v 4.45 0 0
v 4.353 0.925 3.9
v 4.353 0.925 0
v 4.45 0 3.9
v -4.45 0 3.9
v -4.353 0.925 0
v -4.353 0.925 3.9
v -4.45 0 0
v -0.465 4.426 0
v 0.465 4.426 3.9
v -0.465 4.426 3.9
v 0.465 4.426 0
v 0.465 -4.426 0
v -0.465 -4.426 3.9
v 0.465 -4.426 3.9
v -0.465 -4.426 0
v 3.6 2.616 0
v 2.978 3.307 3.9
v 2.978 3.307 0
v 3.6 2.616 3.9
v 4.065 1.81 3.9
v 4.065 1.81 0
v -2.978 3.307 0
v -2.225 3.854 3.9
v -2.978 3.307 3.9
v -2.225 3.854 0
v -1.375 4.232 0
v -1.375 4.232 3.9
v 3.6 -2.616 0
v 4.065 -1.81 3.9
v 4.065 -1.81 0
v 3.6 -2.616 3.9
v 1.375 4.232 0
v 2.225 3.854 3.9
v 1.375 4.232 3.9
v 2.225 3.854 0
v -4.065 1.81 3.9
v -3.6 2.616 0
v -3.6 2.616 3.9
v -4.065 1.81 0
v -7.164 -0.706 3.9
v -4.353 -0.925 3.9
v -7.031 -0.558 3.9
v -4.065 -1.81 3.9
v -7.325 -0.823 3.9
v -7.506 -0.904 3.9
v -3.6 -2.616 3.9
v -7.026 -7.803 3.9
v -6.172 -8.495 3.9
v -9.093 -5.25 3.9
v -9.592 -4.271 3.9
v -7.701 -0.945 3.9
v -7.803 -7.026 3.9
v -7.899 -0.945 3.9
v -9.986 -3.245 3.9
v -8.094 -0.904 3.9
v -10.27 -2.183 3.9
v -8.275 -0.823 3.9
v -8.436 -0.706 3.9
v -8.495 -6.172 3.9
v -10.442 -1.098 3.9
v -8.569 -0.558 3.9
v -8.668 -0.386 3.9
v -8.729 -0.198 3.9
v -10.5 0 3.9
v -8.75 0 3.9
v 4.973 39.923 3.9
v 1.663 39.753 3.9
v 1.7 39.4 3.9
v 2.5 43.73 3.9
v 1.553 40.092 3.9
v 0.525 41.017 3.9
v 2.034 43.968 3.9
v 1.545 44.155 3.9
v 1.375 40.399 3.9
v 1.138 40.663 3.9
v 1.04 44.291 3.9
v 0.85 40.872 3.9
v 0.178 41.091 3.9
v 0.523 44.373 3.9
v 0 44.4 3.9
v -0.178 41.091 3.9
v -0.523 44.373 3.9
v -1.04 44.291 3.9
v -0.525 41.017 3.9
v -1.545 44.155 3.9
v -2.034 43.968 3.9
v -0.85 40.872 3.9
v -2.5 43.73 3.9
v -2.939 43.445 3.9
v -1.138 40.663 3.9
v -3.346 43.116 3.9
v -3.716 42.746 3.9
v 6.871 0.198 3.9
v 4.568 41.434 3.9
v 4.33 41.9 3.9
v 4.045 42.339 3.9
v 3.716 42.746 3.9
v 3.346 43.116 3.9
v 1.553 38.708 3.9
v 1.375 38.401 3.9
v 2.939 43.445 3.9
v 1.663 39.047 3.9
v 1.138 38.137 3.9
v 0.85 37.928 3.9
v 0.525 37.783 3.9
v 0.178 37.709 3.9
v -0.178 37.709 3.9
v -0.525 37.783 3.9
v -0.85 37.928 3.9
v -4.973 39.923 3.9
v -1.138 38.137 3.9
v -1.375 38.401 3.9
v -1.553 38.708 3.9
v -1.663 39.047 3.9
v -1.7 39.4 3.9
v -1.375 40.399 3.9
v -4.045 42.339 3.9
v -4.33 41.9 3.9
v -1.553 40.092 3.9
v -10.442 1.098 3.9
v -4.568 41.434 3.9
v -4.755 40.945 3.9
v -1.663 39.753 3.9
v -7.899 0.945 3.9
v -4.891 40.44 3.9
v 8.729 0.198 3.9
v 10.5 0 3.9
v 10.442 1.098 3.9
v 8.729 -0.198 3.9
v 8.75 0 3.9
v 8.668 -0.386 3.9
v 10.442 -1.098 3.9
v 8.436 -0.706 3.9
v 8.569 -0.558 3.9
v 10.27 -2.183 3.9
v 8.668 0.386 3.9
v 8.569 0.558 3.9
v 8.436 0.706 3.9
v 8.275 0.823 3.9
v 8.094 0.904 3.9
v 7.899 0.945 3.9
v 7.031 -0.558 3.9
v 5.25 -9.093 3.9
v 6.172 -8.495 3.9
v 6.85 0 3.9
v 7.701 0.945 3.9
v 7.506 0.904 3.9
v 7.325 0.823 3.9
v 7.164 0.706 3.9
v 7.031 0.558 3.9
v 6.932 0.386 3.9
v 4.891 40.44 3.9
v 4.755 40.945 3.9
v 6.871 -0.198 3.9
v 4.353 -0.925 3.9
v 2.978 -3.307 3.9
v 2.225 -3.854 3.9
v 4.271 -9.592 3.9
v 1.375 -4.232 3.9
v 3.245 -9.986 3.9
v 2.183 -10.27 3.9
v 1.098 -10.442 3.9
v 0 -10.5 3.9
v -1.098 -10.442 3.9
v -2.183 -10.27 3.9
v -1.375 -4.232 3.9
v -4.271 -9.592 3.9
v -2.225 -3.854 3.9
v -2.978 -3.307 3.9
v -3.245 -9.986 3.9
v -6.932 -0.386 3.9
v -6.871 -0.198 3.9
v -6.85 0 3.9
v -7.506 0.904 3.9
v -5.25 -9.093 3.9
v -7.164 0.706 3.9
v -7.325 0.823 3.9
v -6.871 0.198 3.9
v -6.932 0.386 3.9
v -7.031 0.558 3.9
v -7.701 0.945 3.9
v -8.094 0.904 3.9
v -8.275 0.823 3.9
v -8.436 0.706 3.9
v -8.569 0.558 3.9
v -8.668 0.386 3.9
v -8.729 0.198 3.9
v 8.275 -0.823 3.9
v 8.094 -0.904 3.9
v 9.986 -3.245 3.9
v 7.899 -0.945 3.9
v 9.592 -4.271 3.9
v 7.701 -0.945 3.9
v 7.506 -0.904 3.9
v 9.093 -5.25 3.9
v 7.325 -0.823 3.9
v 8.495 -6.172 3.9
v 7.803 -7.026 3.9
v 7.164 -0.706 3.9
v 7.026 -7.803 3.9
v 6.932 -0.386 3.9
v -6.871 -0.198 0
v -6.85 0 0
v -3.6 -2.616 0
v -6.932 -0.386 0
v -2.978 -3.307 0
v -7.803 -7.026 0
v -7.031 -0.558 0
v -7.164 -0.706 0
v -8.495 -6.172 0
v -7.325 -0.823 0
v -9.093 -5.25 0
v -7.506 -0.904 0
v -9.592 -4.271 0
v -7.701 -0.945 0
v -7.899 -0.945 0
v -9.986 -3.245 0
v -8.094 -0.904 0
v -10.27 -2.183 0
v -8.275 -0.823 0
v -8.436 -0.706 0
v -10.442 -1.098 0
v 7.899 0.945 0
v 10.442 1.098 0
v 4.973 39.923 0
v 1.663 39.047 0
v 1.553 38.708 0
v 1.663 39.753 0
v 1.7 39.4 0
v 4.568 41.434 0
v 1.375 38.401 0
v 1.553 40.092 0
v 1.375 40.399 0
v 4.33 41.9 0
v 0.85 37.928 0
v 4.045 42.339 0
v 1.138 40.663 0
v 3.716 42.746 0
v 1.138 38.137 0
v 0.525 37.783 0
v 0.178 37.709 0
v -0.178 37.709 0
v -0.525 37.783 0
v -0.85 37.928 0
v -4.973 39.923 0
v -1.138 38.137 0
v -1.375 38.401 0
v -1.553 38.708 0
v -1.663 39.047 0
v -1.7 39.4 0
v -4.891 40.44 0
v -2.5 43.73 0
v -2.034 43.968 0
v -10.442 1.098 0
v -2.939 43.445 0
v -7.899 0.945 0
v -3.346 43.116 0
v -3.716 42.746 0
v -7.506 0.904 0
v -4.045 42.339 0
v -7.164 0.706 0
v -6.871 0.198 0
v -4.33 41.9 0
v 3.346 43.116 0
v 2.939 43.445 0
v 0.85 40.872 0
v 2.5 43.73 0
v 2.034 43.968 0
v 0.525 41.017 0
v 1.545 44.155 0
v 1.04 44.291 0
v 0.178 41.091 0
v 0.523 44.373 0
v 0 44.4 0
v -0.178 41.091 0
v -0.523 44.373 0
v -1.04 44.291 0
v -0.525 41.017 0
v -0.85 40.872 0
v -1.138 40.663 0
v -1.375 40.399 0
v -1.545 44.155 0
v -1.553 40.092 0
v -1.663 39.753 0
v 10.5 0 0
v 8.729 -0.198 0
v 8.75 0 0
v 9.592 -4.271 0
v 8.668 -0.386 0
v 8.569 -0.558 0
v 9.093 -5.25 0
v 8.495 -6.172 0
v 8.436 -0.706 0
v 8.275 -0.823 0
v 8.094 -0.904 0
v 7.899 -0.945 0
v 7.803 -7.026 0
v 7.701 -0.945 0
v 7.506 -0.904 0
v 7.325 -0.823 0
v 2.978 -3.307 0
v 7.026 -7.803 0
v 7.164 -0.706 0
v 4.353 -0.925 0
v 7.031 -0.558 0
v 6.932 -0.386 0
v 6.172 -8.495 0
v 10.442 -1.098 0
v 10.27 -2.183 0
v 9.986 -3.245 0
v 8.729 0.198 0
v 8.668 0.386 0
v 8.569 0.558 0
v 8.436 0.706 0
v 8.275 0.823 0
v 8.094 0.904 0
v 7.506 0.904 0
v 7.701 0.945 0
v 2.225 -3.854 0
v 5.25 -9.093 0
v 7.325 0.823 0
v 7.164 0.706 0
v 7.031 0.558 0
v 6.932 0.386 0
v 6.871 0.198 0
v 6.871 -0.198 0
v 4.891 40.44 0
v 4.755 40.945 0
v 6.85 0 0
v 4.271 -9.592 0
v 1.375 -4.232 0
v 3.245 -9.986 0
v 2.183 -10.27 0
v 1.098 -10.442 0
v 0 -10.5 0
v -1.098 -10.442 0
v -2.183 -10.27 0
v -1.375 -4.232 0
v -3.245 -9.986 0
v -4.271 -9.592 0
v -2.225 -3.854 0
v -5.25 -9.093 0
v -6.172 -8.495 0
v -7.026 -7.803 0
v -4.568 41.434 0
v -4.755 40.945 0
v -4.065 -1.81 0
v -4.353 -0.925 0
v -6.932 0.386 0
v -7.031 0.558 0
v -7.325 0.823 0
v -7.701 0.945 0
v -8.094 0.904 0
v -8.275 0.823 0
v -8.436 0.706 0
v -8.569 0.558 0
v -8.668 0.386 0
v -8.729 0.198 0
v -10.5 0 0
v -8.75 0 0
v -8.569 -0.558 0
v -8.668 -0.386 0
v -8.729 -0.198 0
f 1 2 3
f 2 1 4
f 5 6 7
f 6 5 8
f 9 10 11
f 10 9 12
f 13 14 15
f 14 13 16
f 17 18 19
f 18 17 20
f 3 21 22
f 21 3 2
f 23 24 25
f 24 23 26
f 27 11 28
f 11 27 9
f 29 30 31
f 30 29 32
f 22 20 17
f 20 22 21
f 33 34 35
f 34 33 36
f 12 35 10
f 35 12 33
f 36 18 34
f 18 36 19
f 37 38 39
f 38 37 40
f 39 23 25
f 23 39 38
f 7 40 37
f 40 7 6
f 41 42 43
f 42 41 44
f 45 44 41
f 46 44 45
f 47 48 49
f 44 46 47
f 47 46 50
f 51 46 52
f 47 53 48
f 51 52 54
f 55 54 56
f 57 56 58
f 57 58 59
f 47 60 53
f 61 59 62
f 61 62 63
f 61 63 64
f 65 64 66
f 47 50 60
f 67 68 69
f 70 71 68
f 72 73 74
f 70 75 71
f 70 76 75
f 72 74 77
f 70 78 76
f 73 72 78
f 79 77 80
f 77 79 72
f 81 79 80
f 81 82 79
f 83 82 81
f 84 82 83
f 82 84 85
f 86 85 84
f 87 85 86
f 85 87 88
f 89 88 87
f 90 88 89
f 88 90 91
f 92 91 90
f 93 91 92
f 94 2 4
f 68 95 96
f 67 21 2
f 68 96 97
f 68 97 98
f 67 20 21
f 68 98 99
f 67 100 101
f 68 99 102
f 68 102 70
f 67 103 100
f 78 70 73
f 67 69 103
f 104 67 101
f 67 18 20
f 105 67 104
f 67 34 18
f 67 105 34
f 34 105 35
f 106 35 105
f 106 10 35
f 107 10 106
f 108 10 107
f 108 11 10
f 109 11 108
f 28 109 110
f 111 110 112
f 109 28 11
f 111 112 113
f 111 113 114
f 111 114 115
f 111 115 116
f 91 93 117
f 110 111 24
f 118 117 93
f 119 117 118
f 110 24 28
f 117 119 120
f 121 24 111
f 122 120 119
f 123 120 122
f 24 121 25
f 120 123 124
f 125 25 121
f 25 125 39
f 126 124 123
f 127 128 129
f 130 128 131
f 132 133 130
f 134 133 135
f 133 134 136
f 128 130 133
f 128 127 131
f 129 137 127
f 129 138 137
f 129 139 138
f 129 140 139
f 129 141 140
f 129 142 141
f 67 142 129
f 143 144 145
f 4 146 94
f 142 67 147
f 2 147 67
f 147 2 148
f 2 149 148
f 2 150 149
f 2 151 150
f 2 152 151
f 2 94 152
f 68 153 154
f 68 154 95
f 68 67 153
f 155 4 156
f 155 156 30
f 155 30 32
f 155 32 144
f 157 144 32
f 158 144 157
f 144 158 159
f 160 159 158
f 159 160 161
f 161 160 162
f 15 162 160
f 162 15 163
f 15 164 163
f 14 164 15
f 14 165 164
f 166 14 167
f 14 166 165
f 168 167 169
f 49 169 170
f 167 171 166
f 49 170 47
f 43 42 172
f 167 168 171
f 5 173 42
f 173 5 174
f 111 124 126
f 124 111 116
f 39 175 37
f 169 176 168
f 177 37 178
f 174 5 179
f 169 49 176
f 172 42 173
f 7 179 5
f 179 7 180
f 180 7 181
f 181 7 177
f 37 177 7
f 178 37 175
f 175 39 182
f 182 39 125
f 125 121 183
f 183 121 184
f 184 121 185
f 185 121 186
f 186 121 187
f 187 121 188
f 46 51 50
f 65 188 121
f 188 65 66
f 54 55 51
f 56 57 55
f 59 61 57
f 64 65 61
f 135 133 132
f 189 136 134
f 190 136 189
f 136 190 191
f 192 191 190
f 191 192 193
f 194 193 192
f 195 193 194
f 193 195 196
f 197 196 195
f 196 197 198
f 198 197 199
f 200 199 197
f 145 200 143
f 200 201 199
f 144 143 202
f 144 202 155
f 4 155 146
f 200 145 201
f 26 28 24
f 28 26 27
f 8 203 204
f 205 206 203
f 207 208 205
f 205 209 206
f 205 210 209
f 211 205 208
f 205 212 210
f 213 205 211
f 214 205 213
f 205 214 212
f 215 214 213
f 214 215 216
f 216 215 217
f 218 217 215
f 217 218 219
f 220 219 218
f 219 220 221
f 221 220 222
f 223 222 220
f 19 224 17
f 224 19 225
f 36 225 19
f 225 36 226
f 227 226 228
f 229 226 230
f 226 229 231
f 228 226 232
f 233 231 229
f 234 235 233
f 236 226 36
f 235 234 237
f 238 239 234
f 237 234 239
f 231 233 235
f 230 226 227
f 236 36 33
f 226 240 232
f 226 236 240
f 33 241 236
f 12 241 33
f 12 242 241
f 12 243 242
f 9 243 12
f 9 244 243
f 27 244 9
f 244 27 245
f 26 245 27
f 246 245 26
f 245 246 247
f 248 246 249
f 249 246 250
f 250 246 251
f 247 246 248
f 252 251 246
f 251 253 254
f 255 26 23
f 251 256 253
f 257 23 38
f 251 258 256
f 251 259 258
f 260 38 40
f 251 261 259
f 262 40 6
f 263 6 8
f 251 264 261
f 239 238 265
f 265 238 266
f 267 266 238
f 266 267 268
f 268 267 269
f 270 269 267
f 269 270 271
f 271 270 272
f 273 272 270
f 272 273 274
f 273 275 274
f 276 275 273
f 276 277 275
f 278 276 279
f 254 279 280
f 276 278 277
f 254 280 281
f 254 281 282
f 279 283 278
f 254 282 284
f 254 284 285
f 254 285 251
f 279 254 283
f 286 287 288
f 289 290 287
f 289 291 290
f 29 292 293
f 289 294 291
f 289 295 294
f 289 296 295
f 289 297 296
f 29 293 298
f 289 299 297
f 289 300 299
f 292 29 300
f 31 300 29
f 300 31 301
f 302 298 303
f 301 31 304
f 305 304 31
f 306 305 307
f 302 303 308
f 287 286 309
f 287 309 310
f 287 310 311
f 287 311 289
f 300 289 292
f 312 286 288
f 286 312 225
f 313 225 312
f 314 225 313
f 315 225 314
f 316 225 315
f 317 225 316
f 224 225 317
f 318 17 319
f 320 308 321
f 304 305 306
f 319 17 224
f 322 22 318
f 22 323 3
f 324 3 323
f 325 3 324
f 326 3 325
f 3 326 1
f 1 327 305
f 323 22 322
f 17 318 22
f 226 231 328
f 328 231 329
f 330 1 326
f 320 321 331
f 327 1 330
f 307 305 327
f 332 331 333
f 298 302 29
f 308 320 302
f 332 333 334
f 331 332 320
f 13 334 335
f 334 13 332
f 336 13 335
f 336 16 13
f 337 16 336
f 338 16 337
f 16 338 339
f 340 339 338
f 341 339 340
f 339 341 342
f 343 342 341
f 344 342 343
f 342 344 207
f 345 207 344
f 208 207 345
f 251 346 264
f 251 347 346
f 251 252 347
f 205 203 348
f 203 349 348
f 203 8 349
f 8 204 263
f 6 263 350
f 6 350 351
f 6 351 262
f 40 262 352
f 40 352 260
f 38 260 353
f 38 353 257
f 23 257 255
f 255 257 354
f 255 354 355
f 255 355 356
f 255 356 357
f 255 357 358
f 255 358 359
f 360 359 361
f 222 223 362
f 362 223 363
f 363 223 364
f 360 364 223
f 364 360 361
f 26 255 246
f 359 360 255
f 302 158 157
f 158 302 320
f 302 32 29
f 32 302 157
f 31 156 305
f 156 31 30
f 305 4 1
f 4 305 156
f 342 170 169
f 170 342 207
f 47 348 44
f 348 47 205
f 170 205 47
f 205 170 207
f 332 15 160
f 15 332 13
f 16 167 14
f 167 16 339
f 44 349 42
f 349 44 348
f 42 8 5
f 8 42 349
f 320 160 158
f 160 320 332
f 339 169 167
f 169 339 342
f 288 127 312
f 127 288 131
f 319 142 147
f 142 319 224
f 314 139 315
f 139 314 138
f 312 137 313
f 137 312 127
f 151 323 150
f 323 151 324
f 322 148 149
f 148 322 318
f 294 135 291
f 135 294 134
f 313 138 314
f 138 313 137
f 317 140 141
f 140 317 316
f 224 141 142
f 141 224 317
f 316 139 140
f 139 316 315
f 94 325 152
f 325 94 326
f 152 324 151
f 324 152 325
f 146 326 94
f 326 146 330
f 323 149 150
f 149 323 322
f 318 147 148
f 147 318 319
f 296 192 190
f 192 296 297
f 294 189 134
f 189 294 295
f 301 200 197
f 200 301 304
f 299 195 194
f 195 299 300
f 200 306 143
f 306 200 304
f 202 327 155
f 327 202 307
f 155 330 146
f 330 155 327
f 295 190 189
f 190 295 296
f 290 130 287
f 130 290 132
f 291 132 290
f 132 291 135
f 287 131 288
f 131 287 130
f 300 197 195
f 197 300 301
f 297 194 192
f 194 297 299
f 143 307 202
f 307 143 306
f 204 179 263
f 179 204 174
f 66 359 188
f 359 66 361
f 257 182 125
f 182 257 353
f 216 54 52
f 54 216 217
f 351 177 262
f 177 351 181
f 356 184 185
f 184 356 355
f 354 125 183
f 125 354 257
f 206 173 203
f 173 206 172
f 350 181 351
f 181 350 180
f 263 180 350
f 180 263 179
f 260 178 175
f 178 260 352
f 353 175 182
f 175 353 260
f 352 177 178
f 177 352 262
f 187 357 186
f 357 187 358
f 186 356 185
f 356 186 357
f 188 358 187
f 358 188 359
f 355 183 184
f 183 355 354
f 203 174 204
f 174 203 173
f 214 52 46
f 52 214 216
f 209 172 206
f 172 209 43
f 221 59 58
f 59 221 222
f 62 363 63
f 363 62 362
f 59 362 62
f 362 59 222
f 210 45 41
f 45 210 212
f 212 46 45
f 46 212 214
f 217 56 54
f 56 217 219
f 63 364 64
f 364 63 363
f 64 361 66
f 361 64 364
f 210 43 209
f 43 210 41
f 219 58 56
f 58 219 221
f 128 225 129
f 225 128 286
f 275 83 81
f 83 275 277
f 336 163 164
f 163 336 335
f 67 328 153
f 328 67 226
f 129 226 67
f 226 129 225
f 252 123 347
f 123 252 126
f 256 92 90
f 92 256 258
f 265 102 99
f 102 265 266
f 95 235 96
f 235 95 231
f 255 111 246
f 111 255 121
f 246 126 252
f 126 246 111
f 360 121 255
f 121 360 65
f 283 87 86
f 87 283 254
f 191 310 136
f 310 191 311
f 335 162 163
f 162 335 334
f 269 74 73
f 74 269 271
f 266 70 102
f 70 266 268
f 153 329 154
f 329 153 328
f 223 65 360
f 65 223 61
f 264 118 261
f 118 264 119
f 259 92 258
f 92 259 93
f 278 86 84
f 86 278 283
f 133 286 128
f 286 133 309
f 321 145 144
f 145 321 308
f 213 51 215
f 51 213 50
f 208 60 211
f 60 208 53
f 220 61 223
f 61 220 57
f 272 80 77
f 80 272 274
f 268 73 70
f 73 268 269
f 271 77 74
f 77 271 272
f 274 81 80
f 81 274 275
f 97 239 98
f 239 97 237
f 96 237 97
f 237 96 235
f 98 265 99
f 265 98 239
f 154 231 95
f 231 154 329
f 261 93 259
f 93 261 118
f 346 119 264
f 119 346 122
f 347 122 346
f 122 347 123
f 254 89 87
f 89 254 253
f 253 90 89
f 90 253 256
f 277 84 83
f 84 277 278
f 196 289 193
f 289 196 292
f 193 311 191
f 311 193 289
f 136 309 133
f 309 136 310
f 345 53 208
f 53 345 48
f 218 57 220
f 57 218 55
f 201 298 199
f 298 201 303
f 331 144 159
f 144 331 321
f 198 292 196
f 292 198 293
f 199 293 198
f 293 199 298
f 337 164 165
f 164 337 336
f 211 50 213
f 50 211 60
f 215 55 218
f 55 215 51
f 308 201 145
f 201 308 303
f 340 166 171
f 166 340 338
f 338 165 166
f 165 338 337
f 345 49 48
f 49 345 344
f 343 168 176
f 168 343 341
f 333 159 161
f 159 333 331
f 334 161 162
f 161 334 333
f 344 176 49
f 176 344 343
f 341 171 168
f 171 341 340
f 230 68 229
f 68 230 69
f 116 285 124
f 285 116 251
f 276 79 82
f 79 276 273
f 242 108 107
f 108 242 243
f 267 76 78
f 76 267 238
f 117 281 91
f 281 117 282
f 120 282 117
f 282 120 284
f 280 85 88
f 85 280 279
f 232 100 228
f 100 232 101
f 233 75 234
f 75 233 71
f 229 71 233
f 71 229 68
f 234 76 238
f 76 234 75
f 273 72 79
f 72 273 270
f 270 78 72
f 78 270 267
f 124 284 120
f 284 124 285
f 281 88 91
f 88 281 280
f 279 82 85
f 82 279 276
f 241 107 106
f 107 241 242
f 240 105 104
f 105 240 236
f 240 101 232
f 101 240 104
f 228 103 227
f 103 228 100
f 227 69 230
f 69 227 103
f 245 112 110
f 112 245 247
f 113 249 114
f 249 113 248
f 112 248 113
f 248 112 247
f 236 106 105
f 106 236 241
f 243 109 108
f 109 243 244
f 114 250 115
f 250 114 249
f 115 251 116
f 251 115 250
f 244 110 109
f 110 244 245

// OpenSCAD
//general
$fn = 30;                  //convexity of general curved faces
thickness = 3.9;             //thickness of arm

//circular servo horn measurements
hornDiameter = 21;             //diameter of the circular horn
hornCenterHole = 8.9;          //diameter of the center hole (for screw)
hornOuterHoleDiameters = 1.9;  //diameter of the outer holes for screwing down horn
hornOuterHolesCenterDist = 7.8;//distance from center to the outer holes

//arm specific stuff
armLength = 39.4;               //horn center to horn center distance for arm length

pivotDiameter = 10;            //diameter of pivoting end
freeTurning3mm = 3.4;          //diameter of hole for free turning motion

module horn(){
   cylinder(d=hornCenterHole, h=thickness);
   translate([hornOuterHolesCenterDist, 0, 0])
   cylinder(d=hornOuterHoleDiameters, h=thickness);
   translate([-hornOuterHolesCenterDist, 0, 0])
   cylinder(d=hornOuterHoleDiameters, h=thickness);
}

difference(){
   hull(){
      cylinder(d=hornDiameter,h=thickness, $fn = 60);
      translate([0,armLength,0])
      cylinder(d=pivotDiameter,h=thickness, $fn = 60);
   }
   horn();
   translate([0,armLength,0])
   cylinder(d=freeTurning3mm,h=thickness);
}
